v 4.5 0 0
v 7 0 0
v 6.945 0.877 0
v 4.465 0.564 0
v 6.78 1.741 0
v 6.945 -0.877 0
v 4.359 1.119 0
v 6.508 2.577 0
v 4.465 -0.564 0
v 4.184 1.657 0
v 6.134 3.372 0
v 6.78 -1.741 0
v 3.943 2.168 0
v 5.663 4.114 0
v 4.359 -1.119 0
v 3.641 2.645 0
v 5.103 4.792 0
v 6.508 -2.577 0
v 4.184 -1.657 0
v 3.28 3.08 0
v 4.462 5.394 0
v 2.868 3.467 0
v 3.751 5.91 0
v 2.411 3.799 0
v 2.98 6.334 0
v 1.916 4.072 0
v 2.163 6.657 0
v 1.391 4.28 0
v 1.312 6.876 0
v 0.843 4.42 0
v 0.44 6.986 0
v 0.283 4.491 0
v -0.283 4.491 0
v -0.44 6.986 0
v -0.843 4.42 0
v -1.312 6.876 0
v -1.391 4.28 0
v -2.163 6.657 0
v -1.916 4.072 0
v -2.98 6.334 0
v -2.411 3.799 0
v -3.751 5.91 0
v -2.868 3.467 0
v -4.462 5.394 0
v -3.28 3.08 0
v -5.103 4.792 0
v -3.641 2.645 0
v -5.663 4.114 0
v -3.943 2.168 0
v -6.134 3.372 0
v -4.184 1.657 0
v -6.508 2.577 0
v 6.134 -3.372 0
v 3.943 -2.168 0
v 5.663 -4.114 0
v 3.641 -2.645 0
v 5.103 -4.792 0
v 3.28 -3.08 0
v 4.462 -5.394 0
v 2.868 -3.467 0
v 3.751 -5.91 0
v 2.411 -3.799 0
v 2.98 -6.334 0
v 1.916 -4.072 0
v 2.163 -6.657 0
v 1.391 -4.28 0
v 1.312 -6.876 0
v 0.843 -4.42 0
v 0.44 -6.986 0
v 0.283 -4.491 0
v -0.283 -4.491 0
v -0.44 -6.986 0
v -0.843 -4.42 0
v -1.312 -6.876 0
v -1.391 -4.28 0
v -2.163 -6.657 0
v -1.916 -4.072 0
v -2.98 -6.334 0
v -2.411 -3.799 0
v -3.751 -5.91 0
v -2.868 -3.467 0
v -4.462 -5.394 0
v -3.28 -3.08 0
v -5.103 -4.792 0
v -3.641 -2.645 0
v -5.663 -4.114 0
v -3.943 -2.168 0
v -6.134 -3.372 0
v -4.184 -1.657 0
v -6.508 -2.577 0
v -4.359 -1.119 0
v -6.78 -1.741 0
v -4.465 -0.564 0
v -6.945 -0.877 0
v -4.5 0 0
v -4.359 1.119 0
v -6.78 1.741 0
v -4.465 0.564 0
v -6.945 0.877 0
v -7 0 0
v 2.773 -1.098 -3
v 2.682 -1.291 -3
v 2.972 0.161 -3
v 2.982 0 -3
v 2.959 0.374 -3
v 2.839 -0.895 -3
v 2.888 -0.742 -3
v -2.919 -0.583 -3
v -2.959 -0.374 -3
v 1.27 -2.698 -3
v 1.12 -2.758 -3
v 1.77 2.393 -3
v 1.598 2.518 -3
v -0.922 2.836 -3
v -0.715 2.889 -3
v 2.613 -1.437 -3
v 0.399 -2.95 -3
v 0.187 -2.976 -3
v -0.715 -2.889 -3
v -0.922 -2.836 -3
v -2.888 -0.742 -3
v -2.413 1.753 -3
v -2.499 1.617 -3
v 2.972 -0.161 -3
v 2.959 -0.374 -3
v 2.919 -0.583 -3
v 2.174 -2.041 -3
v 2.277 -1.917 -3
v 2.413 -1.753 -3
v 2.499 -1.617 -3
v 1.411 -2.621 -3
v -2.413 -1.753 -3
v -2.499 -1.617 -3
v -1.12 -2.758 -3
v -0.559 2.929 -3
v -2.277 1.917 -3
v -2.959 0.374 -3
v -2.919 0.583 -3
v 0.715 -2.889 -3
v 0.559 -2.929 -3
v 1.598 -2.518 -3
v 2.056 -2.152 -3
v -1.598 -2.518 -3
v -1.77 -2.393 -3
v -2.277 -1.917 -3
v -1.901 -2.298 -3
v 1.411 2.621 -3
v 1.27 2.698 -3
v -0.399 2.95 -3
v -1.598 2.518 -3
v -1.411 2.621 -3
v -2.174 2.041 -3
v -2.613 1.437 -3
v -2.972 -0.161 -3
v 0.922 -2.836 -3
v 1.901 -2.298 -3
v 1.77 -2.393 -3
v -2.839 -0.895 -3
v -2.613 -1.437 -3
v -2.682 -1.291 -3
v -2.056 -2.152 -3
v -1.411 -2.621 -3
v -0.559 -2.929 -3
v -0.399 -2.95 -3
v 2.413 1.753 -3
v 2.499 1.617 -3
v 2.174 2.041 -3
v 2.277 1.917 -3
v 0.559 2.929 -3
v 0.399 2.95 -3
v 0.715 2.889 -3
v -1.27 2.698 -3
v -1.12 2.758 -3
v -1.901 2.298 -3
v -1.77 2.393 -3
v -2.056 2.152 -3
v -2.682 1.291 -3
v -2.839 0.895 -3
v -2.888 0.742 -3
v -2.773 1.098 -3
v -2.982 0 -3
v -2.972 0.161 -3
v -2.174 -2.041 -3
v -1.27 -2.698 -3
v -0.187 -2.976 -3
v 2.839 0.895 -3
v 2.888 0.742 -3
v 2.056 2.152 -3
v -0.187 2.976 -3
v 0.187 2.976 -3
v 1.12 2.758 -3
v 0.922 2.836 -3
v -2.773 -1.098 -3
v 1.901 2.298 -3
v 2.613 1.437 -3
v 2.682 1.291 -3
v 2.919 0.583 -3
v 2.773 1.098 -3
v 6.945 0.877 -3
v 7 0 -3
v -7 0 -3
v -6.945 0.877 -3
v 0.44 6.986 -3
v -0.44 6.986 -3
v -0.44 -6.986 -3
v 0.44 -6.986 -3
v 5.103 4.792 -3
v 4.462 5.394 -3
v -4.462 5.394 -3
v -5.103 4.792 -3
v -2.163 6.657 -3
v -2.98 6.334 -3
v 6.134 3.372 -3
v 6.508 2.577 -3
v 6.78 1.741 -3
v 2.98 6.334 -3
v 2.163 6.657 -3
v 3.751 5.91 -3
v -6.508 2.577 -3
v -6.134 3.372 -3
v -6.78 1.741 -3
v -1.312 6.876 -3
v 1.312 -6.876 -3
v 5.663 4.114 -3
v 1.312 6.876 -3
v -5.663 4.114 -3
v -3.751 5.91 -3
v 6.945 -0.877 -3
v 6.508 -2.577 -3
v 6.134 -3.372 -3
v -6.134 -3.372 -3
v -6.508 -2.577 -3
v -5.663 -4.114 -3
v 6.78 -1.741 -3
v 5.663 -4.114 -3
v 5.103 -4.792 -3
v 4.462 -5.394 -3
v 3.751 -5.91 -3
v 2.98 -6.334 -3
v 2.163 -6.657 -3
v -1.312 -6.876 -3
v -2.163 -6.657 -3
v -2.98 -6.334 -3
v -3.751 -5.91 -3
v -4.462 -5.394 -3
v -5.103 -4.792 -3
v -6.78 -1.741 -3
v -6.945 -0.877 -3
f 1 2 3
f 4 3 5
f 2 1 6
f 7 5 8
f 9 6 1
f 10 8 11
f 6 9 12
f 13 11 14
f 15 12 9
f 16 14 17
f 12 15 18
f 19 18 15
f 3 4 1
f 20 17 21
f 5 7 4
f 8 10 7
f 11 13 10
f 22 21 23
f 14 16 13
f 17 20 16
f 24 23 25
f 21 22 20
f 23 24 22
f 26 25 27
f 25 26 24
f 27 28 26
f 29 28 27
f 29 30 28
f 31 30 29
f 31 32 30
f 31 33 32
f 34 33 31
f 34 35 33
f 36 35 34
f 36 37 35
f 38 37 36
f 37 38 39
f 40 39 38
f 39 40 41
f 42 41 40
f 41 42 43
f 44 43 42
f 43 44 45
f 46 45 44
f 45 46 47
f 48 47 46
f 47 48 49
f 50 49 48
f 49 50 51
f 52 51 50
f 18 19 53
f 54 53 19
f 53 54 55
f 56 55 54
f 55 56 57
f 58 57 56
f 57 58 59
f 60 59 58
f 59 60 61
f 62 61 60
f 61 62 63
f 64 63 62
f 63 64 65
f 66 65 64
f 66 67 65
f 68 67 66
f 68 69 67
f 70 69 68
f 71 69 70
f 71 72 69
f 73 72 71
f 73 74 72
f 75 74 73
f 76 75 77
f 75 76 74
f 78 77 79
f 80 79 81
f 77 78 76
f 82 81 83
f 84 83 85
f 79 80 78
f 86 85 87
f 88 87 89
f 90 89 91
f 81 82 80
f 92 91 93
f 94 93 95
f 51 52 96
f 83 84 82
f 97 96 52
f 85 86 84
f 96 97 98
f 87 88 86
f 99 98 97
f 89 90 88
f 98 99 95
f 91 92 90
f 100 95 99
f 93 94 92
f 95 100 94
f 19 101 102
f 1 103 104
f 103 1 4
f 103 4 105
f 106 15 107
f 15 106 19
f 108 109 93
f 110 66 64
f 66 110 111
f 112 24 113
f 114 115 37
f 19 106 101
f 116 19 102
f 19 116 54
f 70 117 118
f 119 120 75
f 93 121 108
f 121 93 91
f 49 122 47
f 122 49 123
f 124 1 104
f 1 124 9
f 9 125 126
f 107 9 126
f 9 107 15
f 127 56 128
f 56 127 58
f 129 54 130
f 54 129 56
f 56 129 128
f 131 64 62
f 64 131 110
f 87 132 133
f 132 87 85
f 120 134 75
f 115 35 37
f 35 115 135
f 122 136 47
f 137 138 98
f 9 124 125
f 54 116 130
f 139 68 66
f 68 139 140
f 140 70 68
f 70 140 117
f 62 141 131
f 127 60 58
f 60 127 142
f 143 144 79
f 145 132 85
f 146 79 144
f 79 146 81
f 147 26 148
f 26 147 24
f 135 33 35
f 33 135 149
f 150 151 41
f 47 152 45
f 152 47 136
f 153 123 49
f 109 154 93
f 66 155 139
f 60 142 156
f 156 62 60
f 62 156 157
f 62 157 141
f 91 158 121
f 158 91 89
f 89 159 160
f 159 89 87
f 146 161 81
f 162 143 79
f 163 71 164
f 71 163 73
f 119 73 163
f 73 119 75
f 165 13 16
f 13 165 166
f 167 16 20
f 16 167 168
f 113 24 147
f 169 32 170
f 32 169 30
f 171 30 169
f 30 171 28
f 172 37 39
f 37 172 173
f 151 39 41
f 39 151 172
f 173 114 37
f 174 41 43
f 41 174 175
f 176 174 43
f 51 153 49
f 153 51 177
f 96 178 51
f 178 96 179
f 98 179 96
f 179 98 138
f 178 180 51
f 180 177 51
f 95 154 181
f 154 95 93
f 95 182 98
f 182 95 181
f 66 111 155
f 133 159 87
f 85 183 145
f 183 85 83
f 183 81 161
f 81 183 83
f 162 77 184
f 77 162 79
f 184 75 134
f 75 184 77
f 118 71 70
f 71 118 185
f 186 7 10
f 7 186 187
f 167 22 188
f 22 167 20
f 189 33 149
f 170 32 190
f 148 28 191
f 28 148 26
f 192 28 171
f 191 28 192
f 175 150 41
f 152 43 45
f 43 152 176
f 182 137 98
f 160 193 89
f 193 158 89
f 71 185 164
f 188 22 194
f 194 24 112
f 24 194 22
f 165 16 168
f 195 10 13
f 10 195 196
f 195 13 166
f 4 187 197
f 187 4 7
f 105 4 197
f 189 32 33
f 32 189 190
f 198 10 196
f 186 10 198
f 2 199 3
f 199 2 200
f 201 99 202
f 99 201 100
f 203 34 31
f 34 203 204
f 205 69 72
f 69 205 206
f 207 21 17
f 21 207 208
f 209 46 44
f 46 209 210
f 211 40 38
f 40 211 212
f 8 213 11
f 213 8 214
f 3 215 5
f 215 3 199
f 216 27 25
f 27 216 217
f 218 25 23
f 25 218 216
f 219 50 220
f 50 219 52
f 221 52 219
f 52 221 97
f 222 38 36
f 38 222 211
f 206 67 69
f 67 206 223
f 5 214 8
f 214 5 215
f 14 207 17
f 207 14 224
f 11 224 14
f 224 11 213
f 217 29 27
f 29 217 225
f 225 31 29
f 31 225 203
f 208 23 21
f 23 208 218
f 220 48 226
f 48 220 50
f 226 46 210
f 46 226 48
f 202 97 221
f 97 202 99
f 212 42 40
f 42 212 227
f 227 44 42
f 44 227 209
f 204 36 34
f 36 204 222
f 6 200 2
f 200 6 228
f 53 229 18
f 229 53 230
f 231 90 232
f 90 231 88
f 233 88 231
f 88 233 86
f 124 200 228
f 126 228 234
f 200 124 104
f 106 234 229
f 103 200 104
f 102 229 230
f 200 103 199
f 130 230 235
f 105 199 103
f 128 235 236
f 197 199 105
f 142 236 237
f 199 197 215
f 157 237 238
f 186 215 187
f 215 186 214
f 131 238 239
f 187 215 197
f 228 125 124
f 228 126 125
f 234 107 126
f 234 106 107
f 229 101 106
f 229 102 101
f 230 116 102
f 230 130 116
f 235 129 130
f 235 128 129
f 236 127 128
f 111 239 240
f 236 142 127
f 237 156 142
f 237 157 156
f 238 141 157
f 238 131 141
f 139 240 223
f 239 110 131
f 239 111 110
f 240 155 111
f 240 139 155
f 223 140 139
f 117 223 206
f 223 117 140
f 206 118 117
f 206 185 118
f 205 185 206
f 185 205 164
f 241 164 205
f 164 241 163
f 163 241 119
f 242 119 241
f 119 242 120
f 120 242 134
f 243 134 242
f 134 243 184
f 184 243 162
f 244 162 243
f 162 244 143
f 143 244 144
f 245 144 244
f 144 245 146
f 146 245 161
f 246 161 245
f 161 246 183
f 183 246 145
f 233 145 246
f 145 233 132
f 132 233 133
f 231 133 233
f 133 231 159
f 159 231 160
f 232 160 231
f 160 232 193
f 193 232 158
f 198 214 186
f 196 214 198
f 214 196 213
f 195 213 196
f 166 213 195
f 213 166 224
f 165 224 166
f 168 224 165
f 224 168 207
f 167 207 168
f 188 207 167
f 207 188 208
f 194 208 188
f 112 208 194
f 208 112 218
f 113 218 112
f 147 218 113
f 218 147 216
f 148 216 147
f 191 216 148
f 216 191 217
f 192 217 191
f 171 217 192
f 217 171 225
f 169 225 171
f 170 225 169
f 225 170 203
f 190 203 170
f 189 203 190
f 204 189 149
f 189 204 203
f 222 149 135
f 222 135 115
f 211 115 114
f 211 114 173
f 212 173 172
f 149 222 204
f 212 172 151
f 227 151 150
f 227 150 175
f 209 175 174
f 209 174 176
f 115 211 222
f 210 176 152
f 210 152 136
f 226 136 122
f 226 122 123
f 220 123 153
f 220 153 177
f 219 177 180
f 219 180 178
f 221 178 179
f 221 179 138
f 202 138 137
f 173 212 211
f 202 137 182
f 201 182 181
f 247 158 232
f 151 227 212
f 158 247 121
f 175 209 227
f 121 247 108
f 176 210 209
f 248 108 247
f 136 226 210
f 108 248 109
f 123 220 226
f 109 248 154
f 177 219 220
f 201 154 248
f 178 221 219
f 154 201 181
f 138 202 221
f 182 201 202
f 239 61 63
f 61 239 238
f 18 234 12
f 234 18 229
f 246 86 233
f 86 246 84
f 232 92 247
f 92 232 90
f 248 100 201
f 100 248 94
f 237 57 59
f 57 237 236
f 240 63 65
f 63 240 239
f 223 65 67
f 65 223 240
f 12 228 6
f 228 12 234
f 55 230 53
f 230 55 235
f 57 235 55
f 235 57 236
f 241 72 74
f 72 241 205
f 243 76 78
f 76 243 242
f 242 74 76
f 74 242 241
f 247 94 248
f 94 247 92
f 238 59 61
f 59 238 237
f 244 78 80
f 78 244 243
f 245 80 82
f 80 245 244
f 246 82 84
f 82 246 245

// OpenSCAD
$fn = 50;


difference() {
	union() {
		translate(v = [0, 0, -3.0000000000]) {
			cylinder(h = 3, r = 7.0000000000);
		}
		cylinder(h = 0, r = 10.0000000000);
	}
	union() {
		translate(v = [0, 0, 0]) {
			rotate(a = [0, 0, 0]) {
				difference() {
					union() {
						#translate(v = [0, 0, -3.0000000000]) {
							cylinder(h = 3, r = 2.2500000000);
						}
						#translate(v = [0, 0, -4.2000000000]) {
							cylinder(h = 4.2000000000, r1 = 2.3750000000, r2 = 4.5000000000);
						}
						#translate(v = [0, 0, -3.0000000000]) {
							cylinder(h = 3, r = 2.3750000000);
						}
						#translate(v = [0, 0, -3.0000000000]) {
							cylinder(h = 3, r = 2.2500000000);
						}
					}
					union();
				}
			}
		}
	}
}
